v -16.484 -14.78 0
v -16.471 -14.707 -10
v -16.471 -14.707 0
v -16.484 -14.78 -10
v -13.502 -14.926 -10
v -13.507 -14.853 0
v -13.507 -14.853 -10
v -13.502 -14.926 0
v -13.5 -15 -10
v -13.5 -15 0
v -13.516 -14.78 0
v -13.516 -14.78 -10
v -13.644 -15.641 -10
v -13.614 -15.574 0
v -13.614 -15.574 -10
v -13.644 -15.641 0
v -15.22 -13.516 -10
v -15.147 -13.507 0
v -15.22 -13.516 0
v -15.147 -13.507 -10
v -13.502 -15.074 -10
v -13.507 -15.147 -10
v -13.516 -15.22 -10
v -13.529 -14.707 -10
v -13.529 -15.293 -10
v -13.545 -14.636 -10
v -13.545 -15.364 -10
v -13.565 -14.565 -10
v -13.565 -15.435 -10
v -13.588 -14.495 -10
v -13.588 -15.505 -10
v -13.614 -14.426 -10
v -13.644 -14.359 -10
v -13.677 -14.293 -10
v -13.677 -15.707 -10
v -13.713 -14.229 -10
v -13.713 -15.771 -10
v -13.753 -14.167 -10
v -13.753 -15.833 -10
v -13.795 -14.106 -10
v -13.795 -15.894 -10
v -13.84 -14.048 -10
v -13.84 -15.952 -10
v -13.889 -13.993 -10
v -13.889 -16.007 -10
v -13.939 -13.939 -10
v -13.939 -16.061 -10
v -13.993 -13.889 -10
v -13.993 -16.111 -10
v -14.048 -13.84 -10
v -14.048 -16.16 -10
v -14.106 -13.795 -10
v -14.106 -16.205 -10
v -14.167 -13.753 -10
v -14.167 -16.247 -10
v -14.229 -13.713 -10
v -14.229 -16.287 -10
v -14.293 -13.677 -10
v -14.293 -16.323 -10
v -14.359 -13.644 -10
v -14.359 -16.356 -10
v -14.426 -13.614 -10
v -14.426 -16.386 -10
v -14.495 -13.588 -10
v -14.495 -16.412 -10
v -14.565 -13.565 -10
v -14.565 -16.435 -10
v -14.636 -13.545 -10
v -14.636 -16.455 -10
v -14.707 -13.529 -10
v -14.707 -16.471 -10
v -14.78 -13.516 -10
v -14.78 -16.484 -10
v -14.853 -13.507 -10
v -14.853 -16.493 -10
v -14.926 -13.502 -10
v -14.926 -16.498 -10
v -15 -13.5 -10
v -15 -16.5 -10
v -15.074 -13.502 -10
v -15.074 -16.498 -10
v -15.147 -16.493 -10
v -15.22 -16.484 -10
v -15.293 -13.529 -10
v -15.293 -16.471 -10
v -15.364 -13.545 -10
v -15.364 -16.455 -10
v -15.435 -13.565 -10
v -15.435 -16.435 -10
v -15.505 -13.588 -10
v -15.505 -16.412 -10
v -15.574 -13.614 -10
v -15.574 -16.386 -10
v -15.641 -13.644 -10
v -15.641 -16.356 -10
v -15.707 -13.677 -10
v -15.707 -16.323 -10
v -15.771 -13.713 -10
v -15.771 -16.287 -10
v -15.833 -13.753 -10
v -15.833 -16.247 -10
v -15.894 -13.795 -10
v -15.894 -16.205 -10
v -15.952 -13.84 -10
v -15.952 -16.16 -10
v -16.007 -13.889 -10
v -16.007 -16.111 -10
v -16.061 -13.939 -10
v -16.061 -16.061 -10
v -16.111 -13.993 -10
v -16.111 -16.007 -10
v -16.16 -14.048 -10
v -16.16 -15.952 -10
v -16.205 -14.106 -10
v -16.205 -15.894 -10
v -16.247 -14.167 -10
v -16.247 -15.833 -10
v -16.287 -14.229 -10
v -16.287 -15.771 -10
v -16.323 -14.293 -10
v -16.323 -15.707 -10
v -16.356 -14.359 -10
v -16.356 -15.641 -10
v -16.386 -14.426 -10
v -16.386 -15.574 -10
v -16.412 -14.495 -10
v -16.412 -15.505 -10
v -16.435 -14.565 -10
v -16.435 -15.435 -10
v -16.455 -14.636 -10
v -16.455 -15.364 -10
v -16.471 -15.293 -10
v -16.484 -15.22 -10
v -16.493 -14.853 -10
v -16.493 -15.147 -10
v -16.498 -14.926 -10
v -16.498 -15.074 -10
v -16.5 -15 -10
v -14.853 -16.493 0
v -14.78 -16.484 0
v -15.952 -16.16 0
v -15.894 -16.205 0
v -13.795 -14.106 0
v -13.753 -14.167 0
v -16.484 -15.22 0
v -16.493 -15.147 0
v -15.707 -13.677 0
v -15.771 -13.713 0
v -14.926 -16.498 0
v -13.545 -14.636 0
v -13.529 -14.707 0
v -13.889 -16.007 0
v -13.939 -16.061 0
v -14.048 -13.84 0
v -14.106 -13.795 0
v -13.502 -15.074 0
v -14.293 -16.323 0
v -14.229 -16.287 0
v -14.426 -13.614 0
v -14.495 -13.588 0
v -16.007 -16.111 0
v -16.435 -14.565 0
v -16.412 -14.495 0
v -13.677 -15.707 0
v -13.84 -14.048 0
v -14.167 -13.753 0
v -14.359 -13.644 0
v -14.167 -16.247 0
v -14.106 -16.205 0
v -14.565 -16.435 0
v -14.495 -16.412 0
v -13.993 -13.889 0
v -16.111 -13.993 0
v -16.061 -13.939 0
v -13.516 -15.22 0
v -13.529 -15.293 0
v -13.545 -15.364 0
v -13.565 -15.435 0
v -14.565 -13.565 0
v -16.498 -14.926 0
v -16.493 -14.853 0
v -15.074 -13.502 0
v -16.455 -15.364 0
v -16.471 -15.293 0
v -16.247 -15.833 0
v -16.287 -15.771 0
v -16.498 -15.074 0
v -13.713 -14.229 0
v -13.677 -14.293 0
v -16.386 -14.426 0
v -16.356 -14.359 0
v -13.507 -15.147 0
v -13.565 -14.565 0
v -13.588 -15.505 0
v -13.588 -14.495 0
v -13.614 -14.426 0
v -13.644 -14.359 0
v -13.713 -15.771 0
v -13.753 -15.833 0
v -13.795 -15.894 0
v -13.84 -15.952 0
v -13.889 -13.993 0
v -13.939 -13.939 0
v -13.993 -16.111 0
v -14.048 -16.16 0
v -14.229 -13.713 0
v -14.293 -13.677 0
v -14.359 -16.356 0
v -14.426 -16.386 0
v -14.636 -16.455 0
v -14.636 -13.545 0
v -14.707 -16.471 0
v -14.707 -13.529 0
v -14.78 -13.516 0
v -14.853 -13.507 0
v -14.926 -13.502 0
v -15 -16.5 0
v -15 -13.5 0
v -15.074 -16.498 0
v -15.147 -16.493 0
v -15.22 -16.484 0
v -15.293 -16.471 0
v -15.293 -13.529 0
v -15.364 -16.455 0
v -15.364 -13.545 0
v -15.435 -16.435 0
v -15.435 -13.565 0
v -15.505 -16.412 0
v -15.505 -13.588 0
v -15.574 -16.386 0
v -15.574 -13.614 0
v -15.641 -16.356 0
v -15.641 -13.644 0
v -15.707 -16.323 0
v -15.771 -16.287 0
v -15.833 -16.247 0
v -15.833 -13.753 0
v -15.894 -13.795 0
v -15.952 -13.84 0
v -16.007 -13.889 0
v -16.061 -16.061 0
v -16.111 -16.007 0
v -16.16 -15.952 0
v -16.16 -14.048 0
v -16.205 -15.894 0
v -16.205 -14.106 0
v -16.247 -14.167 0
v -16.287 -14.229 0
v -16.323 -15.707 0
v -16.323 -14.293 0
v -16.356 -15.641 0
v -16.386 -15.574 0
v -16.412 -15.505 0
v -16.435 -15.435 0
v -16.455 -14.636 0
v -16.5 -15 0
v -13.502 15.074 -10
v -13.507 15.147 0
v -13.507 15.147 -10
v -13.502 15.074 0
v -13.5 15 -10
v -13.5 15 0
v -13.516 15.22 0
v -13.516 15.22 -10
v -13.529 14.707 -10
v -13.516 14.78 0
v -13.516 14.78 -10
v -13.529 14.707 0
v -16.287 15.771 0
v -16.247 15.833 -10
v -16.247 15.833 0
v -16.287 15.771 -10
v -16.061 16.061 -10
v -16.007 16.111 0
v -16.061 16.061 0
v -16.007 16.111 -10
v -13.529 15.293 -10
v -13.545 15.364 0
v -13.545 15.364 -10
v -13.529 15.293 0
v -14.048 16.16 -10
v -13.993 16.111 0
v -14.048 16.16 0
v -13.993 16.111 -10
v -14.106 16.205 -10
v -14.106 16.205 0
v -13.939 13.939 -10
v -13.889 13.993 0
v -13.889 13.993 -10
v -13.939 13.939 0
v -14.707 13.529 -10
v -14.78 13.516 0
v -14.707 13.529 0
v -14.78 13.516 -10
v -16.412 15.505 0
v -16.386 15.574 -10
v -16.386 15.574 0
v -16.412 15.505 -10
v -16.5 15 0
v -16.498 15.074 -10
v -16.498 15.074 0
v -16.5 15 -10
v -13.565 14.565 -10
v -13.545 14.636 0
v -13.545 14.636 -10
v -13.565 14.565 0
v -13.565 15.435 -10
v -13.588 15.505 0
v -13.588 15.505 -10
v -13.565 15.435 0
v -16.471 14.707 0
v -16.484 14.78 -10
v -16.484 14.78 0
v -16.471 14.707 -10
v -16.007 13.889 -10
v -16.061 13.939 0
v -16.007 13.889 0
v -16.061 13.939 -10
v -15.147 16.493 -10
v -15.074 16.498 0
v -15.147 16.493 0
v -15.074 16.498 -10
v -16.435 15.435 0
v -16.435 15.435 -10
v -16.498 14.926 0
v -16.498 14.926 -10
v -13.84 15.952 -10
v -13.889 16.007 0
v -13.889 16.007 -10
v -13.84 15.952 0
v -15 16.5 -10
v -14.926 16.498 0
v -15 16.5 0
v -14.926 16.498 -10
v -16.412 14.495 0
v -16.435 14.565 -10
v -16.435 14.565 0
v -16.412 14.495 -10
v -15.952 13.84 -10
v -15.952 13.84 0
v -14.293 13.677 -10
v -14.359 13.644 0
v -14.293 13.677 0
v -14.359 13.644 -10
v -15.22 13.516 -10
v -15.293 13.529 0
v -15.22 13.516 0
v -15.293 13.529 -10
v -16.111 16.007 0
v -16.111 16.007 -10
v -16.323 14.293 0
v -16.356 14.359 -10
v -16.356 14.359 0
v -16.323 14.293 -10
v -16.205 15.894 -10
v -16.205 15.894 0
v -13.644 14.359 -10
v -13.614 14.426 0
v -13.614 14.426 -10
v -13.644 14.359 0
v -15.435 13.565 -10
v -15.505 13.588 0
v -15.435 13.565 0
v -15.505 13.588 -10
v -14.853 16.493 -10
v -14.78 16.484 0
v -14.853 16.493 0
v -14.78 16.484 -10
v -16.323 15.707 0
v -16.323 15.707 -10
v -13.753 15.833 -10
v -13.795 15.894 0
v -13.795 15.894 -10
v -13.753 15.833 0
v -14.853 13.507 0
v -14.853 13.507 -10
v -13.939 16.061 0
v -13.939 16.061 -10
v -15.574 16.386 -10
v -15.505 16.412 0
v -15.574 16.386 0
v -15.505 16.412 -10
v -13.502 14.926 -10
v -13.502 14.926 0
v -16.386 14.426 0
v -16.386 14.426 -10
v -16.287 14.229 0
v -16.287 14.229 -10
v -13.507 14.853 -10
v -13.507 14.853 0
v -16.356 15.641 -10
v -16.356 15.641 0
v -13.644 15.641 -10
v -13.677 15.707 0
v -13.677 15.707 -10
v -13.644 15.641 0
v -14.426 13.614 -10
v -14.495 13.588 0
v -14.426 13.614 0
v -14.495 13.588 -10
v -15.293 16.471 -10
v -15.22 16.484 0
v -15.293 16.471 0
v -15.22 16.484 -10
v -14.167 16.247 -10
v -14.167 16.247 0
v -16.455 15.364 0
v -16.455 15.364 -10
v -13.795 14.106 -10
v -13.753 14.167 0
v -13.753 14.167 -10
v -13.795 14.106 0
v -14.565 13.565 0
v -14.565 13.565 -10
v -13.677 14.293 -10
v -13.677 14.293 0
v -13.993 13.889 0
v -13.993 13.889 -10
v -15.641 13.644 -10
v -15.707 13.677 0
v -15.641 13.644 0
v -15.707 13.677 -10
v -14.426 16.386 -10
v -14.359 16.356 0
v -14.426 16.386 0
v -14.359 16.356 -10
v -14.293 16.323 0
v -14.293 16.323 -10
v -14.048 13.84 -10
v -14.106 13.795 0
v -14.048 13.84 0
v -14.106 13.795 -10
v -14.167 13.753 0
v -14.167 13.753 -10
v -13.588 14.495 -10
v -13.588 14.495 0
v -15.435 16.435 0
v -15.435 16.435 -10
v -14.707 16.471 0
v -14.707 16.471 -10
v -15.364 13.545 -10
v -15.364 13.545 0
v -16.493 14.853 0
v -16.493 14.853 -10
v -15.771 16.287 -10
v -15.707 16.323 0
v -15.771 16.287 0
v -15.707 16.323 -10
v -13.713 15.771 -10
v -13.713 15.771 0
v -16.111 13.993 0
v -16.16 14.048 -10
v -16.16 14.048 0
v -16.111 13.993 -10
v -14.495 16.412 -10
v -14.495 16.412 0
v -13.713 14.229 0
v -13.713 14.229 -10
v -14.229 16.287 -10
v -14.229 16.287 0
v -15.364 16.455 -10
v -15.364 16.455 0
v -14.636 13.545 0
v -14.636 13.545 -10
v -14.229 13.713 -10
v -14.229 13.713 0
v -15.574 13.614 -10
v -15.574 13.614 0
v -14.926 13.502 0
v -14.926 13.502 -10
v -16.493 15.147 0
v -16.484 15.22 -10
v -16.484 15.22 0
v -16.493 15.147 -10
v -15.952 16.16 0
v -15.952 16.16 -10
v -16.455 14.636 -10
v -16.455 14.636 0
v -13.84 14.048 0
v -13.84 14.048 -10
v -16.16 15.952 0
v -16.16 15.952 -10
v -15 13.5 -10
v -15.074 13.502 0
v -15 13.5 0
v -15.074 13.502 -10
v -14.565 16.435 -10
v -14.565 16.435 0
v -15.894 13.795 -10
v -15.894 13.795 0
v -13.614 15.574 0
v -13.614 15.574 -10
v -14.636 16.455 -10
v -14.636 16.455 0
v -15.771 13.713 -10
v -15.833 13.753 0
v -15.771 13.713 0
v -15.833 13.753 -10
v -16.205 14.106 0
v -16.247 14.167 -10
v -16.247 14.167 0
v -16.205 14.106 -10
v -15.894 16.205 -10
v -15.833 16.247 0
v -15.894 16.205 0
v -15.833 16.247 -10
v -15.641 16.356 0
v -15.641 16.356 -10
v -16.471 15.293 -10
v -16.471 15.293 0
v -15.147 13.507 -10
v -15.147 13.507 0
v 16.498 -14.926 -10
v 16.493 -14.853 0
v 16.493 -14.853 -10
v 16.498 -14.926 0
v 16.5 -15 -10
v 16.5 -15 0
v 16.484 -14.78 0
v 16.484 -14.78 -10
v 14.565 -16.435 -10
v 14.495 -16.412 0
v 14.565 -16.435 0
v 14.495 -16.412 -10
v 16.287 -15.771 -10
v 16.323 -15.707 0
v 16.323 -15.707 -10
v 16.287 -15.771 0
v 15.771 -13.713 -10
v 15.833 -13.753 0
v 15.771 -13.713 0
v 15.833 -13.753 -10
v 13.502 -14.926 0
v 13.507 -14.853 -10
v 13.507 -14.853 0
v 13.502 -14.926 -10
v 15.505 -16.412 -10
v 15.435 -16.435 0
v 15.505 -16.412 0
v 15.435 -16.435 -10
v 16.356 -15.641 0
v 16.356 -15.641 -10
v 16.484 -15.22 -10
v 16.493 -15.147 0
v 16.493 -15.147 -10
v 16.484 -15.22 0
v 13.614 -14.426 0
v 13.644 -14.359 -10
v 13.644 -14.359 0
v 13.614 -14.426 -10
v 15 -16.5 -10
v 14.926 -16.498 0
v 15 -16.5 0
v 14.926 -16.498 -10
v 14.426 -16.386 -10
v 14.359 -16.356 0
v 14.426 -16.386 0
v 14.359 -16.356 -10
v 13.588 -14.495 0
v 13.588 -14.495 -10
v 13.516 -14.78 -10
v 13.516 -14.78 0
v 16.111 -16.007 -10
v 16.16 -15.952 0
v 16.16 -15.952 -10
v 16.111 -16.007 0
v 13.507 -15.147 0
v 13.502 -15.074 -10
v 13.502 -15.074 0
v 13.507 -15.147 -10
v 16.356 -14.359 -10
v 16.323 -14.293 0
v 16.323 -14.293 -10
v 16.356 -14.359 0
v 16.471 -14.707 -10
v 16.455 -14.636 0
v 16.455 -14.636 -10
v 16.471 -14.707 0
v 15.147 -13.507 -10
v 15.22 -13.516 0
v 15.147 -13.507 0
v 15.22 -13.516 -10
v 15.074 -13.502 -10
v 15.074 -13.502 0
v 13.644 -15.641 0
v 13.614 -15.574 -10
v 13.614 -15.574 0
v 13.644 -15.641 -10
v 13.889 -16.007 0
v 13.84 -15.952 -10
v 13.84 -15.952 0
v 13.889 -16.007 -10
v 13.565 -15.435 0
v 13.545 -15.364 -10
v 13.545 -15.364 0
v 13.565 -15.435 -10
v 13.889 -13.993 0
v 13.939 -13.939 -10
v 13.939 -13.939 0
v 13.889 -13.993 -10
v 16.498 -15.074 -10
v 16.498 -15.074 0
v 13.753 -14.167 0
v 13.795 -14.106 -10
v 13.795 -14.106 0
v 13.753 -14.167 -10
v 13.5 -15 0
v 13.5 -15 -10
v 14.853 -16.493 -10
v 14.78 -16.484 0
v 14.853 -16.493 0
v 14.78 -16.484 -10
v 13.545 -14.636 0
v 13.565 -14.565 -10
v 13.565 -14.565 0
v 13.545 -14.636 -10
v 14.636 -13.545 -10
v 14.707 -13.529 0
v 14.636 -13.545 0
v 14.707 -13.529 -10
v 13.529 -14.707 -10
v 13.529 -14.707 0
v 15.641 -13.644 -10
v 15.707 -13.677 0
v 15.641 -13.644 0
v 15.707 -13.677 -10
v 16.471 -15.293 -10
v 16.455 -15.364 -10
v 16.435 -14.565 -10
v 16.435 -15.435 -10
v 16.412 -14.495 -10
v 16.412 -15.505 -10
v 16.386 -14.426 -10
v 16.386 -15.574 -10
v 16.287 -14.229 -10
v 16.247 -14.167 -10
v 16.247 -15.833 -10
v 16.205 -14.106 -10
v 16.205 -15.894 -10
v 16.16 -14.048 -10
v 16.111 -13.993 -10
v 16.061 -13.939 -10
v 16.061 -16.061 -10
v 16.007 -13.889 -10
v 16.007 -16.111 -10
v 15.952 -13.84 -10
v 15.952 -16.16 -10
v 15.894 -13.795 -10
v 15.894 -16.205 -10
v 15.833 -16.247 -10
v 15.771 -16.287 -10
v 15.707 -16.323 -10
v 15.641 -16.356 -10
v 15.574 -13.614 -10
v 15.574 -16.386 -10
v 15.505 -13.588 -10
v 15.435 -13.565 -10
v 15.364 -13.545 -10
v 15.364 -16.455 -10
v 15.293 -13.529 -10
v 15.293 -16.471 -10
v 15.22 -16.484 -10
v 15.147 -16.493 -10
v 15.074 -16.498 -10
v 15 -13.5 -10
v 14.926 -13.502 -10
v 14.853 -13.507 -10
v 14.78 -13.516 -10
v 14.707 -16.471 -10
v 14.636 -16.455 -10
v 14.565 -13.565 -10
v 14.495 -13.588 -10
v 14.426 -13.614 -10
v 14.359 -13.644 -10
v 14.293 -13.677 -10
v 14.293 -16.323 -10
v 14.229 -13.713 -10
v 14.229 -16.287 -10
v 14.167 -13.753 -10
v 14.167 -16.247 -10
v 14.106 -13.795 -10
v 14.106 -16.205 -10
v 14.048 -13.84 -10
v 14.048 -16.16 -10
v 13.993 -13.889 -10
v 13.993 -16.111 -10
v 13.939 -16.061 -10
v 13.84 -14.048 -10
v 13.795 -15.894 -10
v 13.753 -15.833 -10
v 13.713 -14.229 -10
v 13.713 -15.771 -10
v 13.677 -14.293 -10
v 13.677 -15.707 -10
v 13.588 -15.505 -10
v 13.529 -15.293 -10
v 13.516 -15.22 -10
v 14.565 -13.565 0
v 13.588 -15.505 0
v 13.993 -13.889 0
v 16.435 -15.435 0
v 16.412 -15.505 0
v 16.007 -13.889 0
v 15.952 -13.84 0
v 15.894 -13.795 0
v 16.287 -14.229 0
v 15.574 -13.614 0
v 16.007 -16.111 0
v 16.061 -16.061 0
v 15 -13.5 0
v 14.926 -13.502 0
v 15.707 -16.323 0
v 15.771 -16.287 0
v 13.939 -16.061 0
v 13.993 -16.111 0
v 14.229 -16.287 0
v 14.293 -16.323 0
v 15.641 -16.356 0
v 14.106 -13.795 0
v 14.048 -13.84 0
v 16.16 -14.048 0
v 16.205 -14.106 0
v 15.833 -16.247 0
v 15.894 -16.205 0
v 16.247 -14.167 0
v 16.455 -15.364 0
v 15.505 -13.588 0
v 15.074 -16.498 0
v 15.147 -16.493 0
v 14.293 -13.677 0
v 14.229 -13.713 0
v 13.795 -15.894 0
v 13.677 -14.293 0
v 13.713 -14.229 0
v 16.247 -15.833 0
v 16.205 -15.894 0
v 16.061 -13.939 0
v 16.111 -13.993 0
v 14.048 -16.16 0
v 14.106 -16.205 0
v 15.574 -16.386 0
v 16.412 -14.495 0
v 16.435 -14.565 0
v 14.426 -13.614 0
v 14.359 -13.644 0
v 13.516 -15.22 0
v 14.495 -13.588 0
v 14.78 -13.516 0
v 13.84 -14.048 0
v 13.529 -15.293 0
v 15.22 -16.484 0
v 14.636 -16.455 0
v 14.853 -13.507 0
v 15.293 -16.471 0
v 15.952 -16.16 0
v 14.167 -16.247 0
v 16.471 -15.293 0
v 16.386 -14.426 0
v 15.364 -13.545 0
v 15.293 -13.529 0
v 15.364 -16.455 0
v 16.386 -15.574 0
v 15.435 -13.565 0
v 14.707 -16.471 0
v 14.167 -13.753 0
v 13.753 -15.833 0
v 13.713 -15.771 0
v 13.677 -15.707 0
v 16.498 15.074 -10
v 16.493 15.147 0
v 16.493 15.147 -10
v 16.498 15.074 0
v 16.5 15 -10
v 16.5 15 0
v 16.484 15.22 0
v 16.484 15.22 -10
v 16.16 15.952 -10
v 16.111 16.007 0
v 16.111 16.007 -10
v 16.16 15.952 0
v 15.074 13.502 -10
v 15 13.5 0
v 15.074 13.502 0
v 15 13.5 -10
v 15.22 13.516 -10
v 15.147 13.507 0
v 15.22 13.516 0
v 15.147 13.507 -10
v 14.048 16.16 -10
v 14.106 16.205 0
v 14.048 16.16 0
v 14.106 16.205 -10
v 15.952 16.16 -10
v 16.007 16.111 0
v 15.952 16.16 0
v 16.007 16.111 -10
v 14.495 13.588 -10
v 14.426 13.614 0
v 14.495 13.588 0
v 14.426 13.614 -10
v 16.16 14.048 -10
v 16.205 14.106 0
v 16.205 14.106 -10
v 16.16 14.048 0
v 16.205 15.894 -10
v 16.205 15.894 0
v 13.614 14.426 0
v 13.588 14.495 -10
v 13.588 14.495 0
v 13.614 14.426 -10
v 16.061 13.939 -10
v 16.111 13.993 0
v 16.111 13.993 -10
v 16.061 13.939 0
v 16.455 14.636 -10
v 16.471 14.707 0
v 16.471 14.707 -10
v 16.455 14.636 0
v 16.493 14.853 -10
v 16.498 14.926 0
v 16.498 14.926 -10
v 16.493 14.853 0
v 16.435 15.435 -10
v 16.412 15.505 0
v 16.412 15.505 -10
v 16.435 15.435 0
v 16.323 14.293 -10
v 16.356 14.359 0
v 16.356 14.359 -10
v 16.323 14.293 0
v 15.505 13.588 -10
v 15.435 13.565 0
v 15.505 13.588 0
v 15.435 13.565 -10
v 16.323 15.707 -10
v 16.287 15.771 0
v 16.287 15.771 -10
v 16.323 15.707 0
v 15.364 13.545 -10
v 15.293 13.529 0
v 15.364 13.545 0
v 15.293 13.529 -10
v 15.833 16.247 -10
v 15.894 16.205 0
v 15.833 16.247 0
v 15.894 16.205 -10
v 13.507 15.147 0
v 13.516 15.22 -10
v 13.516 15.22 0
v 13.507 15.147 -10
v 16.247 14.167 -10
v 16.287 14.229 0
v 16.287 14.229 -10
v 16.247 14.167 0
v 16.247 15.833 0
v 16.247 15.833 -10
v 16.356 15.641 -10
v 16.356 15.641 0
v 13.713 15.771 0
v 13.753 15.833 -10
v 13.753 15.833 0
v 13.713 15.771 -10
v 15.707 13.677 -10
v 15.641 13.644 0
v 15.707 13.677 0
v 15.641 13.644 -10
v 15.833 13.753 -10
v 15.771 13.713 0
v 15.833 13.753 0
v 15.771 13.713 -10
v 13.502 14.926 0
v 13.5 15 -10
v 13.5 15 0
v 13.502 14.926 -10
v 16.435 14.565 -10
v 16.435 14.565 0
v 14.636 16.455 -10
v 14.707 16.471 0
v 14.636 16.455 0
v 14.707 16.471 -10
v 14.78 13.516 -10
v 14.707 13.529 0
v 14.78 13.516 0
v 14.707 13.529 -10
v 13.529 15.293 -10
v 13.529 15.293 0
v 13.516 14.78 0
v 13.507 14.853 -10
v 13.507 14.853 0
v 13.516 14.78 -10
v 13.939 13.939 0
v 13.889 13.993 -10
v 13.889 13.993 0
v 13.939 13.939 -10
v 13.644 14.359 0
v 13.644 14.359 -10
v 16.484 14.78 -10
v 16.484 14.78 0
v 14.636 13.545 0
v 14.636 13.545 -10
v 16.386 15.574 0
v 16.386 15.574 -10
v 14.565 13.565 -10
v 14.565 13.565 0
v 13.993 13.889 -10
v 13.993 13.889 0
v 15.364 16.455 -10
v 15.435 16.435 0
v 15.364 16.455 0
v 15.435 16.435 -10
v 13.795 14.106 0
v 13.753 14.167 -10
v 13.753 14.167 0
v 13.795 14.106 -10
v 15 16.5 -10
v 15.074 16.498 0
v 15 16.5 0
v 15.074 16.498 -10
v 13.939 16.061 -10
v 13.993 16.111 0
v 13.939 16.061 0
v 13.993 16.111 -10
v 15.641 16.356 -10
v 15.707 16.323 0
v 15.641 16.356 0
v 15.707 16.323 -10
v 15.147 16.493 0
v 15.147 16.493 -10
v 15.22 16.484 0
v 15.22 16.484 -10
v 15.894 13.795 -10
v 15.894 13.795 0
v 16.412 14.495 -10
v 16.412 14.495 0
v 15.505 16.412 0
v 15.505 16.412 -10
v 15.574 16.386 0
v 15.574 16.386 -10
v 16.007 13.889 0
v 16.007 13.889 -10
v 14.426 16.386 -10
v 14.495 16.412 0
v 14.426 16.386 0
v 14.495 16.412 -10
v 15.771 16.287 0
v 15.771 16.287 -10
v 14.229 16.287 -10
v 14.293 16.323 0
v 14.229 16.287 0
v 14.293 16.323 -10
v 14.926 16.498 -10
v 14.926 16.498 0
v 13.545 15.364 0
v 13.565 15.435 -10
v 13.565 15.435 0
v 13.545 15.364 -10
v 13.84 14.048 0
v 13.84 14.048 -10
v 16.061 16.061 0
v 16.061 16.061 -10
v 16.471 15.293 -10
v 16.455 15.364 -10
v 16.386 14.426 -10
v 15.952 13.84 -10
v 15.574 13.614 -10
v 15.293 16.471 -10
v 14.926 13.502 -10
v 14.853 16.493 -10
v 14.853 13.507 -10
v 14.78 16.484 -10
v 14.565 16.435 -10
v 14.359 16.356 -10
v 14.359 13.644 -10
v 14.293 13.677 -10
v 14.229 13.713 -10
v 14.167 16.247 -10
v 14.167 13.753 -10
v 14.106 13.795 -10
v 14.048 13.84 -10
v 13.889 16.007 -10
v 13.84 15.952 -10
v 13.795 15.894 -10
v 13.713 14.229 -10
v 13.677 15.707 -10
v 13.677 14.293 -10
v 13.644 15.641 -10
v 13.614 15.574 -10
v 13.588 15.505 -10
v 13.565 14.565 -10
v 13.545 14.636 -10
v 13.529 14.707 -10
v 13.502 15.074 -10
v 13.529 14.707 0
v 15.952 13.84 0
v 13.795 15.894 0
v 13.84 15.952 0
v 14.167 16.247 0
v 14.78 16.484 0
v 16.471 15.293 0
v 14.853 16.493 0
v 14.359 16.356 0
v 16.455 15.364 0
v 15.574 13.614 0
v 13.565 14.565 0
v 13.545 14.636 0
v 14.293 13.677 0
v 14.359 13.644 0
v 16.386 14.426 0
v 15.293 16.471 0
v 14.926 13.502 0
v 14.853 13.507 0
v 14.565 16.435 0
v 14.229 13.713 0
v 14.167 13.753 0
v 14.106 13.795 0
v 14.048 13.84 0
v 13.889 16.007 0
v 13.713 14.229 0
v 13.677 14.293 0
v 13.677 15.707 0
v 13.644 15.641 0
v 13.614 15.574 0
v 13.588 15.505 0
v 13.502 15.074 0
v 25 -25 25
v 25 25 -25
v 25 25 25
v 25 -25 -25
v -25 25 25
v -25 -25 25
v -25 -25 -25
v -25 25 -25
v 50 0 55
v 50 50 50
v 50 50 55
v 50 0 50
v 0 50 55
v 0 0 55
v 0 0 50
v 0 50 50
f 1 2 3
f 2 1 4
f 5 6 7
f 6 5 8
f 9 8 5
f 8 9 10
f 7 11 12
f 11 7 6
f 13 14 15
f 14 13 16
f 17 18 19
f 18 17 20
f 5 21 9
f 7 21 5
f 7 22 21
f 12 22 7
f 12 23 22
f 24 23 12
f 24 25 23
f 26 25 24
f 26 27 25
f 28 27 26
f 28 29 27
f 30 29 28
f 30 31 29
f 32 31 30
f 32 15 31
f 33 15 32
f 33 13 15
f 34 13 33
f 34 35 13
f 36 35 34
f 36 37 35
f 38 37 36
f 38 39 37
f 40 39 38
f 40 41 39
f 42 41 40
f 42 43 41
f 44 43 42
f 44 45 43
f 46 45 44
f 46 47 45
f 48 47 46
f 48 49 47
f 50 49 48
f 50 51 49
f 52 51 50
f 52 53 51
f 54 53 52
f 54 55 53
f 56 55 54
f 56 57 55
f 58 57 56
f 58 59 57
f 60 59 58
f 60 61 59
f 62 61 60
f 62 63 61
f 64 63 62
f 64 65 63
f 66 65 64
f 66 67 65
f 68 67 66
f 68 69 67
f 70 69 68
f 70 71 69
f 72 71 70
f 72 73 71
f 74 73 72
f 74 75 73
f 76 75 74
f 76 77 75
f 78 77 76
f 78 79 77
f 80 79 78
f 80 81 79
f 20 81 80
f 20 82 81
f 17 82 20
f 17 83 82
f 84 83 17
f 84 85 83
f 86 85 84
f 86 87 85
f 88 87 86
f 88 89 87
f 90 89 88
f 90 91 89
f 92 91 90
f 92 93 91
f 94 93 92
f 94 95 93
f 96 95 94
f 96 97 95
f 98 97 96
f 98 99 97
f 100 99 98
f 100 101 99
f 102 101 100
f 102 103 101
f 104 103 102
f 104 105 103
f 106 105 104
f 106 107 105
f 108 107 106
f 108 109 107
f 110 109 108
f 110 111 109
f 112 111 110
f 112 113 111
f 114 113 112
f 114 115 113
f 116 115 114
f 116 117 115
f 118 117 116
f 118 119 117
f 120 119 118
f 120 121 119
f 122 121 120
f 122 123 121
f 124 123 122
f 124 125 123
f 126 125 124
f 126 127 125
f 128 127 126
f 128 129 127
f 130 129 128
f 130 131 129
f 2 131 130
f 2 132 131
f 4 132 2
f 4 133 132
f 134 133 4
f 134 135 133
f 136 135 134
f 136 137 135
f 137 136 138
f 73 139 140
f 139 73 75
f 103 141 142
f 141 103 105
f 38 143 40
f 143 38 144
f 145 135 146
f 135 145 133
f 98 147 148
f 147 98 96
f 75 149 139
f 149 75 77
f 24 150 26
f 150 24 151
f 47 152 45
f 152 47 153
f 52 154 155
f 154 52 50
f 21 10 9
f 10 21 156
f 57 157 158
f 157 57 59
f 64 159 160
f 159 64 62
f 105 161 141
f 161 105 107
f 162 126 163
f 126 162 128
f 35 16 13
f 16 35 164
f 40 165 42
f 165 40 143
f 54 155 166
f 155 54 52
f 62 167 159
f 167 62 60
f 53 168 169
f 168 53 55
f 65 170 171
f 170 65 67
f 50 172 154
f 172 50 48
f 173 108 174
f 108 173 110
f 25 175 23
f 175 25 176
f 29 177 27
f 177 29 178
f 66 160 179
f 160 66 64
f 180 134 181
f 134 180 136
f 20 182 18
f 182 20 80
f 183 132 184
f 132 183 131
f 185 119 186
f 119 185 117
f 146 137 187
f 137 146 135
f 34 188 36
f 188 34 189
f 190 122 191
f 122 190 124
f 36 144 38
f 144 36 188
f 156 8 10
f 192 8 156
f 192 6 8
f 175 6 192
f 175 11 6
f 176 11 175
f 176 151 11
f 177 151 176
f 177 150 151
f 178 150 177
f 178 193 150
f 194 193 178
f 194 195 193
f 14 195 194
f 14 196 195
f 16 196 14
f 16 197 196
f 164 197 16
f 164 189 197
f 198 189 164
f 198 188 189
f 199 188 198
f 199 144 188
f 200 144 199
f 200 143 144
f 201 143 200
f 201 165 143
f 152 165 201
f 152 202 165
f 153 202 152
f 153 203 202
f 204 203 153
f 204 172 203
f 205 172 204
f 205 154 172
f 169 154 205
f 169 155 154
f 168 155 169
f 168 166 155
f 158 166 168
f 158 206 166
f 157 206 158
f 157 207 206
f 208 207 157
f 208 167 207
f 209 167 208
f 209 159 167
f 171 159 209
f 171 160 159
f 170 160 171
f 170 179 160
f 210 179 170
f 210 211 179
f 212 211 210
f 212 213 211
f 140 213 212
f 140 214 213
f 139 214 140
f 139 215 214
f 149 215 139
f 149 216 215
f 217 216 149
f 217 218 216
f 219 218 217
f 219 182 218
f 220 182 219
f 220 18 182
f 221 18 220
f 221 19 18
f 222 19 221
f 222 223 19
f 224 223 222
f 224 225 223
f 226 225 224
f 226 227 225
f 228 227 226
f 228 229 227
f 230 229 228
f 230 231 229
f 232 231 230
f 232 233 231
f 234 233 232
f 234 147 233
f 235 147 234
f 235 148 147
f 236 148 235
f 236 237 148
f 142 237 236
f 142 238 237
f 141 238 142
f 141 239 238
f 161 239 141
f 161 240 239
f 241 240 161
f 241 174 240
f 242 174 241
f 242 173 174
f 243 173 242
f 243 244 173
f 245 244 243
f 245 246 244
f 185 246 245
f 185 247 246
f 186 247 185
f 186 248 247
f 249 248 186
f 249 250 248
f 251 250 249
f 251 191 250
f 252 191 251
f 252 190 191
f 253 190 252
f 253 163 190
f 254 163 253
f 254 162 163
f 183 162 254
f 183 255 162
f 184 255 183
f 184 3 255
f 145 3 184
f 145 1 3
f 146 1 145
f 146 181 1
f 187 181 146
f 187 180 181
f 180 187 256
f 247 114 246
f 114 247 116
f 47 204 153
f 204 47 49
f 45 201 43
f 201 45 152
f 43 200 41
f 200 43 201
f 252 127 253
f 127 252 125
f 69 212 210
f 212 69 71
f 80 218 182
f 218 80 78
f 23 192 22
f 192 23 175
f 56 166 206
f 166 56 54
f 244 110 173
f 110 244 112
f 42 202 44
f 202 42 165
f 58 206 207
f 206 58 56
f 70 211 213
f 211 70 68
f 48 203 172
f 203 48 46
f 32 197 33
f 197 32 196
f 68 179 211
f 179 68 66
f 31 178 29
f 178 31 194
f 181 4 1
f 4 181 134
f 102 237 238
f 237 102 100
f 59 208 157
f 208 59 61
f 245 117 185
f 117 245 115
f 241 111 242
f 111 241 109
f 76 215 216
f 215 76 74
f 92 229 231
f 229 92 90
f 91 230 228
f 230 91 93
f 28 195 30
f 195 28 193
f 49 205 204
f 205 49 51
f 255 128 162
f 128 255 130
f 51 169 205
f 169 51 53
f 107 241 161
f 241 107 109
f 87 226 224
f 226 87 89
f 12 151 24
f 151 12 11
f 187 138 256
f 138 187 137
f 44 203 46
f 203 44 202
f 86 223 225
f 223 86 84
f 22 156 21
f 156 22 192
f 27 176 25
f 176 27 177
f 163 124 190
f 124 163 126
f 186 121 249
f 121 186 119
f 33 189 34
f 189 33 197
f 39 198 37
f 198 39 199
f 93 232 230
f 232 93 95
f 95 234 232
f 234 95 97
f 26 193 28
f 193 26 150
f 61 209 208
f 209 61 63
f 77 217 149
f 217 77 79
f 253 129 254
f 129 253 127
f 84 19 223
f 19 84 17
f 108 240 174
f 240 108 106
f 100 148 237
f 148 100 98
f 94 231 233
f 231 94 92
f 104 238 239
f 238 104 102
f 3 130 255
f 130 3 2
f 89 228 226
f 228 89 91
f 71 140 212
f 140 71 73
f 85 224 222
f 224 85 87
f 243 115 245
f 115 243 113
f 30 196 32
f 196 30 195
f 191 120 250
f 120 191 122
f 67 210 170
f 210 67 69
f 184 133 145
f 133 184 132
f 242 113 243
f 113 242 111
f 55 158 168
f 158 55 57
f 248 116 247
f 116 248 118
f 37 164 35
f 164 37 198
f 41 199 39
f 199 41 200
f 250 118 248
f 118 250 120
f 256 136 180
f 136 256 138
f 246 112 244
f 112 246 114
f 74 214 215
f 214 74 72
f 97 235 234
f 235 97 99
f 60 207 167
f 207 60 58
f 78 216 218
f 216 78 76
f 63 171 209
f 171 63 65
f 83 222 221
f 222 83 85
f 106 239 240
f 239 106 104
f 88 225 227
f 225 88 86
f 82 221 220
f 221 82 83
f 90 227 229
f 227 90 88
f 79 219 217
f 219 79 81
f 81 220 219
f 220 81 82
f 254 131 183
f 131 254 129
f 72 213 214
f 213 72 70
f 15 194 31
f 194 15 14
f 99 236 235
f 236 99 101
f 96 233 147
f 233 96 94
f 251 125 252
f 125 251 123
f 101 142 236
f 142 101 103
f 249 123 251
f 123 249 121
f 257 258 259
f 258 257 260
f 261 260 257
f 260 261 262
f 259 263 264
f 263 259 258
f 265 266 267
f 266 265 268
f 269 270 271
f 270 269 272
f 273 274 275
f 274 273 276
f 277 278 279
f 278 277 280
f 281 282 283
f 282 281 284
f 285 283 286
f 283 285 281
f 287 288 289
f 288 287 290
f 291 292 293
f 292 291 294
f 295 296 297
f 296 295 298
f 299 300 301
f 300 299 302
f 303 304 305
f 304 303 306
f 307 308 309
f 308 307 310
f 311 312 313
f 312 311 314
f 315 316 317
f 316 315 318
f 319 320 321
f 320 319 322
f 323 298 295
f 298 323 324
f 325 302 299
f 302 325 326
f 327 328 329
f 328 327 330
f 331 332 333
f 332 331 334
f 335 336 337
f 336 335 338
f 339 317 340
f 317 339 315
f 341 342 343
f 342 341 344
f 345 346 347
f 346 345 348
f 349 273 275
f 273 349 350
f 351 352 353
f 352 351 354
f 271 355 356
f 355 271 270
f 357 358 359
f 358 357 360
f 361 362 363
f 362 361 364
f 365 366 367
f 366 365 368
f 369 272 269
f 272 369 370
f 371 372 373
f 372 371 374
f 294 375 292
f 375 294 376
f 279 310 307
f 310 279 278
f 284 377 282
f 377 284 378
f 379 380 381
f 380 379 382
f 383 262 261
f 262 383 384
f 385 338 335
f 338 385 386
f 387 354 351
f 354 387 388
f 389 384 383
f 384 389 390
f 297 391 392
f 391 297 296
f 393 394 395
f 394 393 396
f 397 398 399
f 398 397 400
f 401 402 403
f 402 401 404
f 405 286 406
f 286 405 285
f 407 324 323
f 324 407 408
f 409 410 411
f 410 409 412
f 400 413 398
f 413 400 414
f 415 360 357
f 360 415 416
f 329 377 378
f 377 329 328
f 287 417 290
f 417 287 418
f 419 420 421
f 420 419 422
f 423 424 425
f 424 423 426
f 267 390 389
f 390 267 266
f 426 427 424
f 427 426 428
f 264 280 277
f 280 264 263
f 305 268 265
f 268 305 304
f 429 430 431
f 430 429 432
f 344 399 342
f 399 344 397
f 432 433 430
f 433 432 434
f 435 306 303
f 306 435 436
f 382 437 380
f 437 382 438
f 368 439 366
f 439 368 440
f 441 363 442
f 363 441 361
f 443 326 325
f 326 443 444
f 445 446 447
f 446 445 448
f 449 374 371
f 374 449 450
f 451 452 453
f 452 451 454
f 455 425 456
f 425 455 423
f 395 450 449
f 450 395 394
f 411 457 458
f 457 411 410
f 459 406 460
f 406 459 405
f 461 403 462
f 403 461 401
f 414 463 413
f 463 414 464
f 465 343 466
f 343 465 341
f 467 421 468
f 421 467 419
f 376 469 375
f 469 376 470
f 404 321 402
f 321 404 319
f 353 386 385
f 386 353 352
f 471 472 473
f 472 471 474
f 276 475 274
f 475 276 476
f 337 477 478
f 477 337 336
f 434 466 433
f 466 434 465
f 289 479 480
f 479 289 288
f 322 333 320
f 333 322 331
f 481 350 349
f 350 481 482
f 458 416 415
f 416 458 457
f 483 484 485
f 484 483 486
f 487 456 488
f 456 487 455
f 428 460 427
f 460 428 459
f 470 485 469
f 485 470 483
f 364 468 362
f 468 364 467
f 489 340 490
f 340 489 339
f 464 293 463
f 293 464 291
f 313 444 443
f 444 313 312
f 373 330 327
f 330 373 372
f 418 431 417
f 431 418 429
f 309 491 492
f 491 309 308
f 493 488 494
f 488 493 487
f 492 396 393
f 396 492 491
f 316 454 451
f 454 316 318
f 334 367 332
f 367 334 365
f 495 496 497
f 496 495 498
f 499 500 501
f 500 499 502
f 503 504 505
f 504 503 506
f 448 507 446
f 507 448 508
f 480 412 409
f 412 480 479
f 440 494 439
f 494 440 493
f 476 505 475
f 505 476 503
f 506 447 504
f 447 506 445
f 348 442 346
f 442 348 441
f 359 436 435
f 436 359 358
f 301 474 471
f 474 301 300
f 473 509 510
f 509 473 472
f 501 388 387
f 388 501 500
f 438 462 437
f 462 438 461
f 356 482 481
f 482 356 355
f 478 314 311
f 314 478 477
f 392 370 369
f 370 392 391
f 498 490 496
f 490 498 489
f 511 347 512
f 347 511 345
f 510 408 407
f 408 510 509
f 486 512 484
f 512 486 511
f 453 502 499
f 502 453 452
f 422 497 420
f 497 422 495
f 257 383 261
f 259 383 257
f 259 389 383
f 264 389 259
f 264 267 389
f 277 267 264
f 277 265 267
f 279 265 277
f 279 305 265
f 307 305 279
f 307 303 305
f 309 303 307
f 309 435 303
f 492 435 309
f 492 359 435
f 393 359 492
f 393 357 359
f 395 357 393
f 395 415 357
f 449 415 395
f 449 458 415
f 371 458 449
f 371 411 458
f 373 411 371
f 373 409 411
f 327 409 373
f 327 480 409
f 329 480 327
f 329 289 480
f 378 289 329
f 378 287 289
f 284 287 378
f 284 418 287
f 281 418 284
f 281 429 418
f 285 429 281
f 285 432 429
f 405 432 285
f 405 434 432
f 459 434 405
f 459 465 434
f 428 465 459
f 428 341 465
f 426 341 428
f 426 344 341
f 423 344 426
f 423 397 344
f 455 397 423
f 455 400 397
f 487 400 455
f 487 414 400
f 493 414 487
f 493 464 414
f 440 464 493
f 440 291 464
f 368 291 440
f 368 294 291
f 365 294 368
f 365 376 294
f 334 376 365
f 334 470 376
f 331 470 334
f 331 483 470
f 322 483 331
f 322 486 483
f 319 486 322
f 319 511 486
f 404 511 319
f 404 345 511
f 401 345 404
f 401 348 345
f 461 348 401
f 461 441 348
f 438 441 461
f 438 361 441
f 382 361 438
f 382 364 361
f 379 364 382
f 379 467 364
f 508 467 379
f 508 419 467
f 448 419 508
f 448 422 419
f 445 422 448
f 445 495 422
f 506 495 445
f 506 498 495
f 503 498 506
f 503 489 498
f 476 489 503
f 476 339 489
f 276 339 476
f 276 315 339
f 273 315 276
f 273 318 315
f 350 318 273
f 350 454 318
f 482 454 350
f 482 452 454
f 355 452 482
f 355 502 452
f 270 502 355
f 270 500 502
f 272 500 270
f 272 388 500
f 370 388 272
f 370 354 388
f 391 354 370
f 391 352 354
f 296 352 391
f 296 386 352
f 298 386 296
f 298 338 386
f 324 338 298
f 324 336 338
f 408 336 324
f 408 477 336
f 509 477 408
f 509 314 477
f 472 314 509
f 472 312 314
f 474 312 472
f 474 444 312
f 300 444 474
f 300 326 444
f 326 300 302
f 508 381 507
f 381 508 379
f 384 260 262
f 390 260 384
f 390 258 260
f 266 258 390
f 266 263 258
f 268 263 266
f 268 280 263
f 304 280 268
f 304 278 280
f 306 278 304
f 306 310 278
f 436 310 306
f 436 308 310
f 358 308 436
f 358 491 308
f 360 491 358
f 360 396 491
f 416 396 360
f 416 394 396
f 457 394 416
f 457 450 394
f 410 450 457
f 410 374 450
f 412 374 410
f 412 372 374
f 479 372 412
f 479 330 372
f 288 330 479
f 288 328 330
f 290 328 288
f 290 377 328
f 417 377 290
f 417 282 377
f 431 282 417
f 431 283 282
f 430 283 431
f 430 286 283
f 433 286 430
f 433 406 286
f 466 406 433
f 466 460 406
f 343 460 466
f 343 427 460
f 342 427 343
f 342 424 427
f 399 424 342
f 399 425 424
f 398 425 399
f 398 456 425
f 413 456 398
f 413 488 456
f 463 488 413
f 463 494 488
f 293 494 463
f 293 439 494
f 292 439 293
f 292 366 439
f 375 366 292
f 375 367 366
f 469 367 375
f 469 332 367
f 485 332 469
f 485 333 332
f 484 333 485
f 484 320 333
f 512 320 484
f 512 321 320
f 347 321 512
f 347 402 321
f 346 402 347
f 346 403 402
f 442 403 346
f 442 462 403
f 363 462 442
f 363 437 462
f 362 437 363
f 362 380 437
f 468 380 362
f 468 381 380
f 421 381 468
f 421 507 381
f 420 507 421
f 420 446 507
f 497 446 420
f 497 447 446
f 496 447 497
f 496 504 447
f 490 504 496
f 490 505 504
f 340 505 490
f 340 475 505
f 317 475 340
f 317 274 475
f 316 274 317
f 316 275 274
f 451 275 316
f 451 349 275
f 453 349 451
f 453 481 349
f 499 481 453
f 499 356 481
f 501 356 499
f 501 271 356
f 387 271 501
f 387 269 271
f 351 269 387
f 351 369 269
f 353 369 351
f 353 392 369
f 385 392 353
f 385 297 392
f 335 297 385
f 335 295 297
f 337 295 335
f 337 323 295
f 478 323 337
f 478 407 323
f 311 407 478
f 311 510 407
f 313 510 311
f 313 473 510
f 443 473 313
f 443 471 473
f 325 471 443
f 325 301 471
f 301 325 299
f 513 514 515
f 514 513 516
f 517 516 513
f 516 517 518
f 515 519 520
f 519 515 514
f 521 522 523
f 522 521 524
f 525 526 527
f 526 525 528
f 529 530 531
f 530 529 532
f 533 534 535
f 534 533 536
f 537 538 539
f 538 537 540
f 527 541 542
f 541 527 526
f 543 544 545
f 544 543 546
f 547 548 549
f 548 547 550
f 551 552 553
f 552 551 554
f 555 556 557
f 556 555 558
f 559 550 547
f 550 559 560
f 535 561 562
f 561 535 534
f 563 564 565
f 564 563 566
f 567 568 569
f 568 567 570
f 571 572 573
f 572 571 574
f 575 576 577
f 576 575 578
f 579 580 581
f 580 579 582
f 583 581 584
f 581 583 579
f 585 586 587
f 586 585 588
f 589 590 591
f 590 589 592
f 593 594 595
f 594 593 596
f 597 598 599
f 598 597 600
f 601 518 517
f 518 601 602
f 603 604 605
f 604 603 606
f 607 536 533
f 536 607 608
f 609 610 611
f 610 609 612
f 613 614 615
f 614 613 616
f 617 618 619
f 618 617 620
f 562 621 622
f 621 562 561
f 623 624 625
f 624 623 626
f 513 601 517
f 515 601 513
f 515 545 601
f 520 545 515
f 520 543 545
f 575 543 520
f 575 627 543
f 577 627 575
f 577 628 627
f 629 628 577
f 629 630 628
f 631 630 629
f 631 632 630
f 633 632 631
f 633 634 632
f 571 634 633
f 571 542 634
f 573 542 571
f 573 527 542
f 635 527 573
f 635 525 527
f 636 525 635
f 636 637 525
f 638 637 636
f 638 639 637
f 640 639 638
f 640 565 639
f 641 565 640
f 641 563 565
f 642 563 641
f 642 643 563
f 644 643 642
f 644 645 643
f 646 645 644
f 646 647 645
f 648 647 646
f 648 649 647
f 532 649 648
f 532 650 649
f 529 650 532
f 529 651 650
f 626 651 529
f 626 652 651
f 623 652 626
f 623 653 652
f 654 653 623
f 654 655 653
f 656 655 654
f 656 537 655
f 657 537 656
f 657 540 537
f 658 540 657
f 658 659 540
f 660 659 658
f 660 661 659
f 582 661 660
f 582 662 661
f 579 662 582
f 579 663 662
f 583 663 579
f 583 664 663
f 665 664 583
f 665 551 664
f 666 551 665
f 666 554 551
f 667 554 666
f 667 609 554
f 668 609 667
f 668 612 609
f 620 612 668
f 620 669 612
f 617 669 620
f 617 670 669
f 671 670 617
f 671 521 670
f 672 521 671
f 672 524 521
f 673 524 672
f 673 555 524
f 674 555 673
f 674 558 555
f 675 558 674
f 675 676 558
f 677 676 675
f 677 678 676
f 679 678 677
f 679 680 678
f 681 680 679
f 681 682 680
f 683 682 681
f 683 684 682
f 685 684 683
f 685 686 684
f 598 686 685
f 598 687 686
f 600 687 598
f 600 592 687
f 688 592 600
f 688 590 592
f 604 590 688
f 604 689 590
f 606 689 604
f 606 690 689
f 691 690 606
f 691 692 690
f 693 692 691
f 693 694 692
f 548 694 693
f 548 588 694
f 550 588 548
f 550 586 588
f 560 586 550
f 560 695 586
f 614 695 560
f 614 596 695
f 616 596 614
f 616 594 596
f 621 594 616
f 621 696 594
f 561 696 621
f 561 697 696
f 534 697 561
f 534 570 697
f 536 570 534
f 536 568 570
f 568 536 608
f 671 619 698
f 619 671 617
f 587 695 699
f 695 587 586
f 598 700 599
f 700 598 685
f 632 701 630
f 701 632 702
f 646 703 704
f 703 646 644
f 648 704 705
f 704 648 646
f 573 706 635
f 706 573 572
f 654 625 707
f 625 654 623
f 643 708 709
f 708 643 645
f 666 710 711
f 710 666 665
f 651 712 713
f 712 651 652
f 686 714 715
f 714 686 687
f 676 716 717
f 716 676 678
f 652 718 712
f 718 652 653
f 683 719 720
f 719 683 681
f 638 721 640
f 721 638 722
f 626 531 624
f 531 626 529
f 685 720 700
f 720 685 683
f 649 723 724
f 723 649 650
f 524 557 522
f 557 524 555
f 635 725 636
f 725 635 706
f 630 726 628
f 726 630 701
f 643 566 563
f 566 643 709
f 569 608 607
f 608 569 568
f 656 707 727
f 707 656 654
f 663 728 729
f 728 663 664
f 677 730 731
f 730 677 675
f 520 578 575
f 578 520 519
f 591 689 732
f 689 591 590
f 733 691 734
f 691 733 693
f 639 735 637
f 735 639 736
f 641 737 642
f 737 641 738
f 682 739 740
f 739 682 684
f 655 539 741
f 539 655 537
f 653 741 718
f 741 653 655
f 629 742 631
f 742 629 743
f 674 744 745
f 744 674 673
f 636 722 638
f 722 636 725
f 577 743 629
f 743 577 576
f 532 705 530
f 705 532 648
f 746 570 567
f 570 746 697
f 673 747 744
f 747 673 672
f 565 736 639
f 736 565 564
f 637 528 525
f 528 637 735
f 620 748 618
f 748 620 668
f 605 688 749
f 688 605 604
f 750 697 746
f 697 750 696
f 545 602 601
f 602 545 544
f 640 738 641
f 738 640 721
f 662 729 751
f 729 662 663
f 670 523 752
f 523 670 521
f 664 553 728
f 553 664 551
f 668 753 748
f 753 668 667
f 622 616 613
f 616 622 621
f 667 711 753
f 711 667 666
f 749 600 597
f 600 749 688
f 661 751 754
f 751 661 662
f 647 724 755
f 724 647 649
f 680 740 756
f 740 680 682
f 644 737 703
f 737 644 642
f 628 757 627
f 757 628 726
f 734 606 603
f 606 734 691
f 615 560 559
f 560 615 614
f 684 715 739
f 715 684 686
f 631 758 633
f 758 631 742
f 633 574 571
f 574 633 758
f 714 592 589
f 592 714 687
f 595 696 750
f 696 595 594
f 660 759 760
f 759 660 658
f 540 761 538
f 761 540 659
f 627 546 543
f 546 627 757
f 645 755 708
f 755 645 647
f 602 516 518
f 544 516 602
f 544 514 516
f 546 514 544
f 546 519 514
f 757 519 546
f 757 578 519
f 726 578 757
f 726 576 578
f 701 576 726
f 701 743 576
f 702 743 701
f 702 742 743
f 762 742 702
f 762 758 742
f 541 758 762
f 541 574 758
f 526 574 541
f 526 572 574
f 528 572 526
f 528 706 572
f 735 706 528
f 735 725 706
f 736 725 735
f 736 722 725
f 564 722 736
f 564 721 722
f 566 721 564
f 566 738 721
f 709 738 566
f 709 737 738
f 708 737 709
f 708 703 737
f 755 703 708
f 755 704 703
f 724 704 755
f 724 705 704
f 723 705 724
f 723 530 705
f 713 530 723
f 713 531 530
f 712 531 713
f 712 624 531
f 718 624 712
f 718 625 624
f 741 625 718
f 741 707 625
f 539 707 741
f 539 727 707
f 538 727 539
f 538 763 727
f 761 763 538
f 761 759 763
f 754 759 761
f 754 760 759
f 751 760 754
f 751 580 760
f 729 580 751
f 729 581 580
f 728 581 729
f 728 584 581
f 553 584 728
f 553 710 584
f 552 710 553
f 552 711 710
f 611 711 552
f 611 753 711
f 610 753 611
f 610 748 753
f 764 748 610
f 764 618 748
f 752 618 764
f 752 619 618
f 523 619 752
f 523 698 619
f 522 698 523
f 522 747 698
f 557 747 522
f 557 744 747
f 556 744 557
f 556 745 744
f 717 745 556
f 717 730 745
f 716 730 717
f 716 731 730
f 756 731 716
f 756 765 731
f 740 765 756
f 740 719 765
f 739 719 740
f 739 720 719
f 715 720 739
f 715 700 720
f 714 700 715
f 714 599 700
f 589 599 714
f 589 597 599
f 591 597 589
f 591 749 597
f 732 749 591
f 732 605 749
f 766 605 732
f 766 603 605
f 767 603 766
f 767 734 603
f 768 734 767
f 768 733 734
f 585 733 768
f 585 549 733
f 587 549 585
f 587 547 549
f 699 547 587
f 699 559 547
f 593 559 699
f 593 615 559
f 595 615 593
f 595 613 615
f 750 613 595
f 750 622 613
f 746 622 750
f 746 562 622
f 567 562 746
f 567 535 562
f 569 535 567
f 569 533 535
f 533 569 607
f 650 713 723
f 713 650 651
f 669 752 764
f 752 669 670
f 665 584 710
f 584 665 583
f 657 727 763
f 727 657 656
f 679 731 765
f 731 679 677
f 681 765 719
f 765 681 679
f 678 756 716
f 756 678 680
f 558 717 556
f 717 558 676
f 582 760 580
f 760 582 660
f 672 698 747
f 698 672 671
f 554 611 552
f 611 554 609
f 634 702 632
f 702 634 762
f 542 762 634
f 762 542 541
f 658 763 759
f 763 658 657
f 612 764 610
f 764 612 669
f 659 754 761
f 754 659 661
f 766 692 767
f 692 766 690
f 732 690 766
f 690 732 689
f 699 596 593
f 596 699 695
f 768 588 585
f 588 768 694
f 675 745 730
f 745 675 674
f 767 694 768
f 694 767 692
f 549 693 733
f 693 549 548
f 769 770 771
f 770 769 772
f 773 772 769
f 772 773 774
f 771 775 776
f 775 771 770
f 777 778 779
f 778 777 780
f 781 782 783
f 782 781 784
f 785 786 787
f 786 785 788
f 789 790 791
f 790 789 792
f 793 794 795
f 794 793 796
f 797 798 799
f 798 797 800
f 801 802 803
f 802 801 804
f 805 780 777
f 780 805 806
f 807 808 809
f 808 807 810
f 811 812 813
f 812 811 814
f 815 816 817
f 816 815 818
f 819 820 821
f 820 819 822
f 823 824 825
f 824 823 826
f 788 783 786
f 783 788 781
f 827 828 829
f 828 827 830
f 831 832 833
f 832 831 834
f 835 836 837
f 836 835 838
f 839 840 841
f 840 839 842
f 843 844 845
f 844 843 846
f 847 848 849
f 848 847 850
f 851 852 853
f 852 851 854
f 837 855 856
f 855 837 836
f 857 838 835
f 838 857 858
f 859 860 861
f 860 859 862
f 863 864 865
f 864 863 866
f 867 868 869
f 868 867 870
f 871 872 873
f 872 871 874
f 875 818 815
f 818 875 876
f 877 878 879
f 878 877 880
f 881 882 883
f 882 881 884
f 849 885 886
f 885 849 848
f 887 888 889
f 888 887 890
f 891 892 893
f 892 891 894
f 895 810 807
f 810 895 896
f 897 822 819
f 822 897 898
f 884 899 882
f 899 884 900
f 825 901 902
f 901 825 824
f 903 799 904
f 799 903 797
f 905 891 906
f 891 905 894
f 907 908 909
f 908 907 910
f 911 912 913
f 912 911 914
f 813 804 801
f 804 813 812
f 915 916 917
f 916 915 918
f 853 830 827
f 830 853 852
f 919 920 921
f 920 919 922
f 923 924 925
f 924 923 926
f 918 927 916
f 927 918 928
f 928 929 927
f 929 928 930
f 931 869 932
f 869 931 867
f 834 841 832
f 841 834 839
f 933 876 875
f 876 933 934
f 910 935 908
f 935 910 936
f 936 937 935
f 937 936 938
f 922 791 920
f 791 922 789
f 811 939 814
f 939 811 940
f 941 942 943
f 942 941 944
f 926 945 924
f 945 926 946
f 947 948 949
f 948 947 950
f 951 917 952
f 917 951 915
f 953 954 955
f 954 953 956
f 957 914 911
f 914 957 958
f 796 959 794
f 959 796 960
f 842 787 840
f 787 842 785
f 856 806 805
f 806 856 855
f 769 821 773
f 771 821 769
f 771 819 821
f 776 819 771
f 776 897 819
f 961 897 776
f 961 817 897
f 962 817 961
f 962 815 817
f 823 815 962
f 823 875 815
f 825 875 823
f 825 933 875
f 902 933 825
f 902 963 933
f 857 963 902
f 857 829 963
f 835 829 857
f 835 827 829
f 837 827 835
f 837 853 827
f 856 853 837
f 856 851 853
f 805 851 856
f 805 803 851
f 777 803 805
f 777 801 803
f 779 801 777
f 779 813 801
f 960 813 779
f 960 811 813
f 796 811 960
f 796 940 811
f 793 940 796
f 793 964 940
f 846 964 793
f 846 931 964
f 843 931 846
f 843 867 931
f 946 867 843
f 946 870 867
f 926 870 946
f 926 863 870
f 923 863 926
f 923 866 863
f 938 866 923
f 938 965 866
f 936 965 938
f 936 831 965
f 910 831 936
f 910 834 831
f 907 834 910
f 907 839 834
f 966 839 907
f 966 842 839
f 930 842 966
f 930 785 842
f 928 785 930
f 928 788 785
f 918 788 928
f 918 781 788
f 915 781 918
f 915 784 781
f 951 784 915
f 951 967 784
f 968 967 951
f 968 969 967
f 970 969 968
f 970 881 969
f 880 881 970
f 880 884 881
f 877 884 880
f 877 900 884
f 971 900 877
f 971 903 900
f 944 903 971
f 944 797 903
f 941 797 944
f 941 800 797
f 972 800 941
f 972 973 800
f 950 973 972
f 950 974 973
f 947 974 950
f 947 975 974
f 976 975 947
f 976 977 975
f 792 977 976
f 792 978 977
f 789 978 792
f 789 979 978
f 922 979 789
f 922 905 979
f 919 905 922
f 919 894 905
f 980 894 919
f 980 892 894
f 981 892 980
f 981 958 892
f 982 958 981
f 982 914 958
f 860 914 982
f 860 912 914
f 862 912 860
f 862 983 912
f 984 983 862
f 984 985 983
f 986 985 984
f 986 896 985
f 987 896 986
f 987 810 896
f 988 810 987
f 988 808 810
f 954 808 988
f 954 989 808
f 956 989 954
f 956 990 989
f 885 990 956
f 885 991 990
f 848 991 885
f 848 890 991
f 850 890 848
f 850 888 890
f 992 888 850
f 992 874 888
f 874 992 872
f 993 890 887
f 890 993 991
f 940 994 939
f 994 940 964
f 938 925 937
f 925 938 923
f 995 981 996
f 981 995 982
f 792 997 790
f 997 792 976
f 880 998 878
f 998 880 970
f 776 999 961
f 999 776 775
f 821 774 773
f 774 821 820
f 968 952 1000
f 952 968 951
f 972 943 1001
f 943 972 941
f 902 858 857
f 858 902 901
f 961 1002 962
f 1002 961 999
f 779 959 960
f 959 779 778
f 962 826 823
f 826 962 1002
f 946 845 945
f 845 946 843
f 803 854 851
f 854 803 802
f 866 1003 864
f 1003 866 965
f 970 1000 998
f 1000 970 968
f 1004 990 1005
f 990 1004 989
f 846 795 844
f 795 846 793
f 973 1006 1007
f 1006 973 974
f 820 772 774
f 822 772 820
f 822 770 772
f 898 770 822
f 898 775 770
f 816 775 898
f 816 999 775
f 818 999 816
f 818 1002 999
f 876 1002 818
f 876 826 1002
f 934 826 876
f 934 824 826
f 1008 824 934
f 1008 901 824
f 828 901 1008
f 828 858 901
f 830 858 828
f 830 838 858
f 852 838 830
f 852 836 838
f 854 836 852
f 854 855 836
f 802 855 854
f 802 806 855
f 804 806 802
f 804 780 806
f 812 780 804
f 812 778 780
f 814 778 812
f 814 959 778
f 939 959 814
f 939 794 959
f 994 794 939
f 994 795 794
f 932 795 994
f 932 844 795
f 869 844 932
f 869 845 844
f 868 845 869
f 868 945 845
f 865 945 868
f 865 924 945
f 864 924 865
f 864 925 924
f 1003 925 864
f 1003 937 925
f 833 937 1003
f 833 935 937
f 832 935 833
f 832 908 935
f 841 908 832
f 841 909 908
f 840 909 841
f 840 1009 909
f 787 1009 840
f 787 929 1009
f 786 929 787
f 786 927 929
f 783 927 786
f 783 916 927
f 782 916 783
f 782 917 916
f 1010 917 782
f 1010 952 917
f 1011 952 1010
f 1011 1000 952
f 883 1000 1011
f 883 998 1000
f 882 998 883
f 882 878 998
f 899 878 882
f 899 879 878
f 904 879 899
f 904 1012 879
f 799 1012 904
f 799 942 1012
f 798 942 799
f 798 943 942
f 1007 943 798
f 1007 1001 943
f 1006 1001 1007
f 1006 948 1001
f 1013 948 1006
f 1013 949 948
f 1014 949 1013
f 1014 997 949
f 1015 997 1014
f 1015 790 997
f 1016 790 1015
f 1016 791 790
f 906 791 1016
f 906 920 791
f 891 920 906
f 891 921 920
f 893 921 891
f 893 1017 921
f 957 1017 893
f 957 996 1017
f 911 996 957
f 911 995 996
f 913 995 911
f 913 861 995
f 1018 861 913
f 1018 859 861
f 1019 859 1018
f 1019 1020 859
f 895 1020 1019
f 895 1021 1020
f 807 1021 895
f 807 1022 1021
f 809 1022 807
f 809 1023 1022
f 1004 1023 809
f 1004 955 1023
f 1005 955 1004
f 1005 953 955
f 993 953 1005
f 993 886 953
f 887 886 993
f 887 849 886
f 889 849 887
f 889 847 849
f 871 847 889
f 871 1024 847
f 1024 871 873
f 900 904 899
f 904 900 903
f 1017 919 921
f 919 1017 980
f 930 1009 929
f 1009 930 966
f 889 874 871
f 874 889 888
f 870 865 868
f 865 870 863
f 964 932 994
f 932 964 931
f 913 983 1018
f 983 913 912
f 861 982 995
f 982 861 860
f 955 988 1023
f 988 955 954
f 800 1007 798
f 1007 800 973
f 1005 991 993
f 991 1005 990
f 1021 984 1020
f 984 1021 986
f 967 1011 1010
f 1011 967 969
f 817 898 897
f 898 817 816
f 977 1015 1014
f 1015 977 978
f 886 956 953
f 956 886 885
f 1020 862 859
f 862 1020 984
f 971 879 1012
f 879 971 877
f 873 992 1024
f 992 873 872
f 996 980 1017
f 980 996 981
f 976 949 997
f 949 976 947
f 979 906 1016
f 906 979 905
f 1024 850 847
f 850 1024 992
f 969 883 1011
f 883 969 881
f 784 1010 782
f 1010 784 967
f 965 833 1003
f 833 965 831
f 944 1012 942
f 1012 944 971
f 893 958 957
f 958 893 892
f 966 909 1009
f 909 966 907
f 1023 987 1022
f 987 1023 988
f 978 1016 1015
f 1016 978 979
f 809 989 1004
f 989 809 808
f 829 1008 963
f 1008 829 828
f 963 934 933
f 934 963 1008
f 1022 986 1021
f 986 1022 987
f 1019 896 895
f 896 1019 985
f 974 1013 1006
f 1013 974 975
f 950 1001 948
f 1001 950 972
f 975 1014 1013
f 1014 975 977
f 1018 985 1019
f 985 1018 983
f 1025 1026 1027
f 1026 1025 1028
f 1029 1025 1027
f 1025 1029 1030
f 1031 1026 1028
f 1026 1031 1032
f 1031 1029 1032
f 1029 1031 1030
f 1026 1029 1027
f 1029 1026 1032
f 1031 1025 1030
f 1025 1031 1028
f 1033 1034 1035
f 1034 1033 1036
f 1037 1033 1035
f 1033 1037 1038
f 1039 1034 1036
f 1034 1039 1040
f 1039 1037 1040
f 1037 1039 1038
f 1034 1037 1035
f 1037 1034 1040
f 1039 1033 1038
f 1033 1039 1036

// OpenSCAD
// Camera Mount for PVC Pipe
// Engineer: Gemini
// Date: 2025-11-15
//
// ========== REVISION HIGHLIGHTS ==========
// - NEW: Designed to clamp onto a standard 4-inch PVC pipe.
// - NEW: Flat mounting surface for a camera.
// - NEW: Screw holes for secure attachment.
// =========================================

// ========== CORE PARAMETERS ==========

// [Dimensions]
pipe_diameter = 101.6; // 4 inches
mount_width = 50;
mount_length = 50;
mount_height = 50;
mount_thickness = 5;
clamp_wall_thickness = 5;
screw_hole_diameter = 3;

$fn = 128;

// ========== MODULES ==========

module camera_mount() {
    difference() {
        // Main body
        cube([mount_length, mount_width, mount_height], center = true);

        // Cutout for PVC pipe
        translate([0, 0, -pipe_diameter / 2]) {
            cylinder(h = mount_length, d = pipe_diameter, center = true);
        }

        // Screw holes
        for (x = [-mount_length / 2 + 10, mount_length / 2 - 10]) {
            for (y = [-mount_width / 2 + 10, mount_width / 2 - 10]) {
                translate([x, y, -mount_thickness]) {
                    cylinder(h = mount_thickness * 2, d = screw_hole_diameter, center = true);
                }
            }
        }
    }

    // Camera mounting plate
    translate([0, 0, mount_height]){
        cube([mount_length, mount_width, mount_thickness]);
    }
}

// ========== ASSEMBLY CALL ==========
camera_mount();
